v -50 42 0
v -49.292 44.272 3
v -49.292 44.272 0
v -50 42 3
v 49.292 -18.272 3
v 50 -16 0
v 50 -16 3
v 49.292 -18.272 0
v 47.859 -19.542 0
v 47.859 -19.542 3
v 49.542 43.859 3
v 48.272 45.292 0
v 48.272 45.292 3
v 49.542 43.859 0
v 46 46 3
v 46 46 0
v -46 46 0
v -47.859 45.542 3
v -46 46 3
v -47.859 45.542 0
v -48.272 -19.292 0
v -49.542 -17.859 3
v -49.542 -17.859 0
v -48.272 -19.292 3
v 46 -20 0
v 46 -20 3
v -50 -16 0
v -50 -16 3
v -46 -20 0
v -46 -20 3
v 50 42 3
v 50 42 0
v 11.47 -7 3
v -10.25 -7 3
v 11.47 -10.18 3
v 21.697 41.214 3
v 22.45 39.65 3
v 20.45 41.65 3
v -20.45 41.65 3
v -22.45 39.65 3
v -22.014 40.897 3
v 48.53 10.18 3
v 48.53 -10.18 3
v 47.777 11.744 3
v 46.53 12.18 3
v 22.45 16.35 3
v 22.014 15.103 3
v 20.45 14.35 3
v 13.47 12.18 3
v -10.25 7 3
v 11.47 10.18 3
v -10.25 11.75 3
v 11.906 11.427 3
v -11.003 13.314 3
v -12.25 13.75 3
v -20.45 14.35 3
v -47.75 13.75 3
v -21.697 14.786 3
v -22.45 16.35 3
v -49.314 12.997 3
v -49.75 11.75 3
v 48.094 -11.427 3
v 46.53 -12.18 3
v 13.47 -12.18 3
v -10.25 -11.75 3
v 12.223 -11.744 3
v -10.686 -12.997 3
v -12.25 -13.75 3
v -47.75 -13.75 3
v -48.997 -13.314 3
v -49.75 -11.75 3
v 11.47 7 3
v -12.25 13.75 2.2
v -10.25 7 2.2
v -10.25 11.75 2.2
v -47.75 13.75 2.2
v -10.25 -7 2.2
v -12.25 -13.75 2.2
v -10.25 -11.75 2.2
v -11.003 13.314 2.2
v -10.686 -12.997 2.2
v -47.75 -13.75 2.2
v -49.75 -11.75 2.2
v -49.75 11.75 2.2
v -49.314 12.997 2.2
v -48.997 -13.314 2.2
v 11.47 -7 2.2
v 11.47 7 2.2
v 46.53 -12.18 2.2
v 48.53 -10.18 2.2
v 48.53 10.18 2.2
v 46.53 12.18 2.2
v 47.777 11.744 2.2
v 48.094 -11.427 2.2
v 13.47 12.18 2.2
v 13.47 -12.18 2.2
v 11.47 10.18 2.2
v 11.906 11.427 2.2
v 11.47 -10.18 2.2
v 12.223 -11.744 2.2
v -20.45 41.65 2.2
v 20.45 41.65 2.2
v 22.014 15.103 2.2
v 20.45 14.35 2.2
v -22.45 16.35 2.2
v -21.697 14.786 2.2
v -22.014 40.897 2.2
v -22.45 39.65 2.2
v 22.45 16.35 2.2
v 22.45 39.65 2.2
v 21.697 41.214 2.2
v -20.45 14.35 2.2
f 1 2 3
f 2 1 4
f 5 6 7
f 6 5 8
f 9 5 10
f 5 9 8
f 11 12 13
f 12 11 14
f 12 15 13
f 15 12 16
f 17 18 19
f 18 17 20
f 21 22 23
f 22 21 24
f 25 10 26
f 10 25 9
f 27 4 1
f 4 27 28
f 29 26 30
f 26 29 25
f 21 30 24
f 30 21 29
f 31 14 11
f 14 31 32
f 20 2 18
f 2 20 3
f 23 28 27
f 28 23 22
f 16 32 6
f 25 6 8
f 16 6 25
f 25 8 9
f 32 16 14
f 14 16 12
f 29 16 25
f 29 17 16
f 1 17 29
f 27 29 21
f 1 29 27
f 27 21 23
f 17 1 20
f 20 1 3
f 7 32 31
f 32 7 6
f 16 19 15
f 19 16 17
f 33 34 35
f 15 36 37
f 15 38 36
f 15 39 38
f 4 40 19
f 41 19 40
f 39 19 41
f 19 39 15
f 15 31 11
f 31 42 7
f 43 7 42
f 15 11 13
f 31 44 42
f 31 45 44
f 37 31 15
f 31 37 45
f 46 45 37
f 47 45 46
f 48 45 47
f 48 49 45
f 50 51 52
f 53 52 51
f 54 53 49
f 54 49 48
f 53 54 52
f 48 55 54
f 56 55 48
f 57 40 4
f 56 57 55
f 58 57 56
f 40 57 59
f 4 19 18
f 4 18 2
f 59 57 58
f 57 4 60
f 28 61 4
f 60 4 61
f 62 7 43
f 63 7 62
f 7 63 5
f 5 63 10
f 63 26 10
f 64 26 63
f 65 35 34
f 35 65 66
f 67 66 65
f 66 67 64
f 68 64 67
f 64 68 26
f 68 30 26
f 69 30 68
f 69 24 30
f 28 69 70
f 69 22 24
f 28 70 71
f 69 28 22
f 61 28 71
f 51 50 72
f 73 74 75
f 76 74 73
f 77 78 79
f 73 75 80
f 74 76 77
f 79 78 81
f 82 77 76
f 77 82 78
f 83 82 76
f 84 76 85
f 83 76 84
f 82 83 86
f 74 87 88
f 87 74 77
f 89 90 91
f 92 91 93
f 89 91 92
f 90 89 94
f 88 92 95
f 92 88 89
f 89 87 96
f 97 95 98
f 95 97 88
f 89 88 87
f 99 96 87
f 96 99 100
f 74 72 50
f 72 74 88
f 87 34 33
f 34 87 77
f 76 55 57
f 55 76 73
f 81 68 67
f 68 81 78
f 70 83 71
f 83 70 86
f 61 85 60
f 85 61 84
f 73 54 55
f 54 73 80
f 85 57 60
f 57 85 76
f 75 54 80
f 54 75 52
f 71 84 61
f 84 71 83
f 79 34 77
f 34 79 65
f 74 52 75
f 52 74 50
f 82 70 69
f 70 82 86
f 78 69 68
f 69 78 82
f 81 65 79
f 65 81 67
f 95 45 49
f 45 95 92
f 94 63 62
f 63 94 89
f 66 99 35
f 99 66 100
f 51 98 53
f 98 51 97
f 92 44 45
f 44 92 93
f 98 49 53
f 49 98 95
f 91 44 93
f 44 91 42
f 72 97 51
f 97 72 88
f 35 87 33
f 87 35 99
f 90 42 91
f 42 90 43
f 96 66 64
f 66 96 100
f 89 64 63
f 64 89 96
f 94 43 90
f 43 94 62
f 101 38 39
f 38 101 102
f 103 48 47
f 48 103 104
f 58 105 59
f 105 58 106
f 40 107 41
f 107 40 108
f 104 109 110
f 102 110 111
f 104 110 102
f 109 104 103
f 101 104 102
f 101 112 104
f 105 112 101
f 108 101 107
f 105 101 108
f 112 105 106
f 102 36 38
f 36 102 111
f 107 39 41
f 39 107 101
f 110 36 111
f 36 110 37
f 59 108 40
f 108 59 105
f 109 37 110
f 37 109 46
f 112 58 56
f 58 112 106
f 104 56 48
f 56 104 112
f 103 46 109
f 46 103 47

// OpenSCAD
// F450 Sentinel — RTK Box tray FIT-CHECK COUPON
// Same pocket geometry as rtk_tray_v1.scad (single source of truth via use),
// cut to a flat plate covering all three board pockets + center cable slot.
// Purpose: operator physically drops UM980 / LicheeRV Nano / LR900 into the
// pockets to verify fit BEFORE committing to the full tray print.
// No legs, no flip: pockets are cut from the TOP (z = tray_t - 0.8), so the
// plate prints flat, pockets facing up, exactly like the tray's disk face.

// Constants mirrored from rtk_tray_v1.scad (OpenSCAD `use` does NOT export
// variables — keep these in sync with the tray file).
tray_t = 3.0;
pocket_d = 0.6;
um980_w = 26 + 1.5;   um980_l = 38 + 1.5;
nano_w  = 22.86 + 1.5; nano_l = 35.56 + 1.5;
lr900_w = 25.8 + 1.5;  lr900_l = 43.4 + 1.5;
um_x = -30;  nano_x = 30;  lr_x = 0;

module rounded_sq(w, l, r = 2) {
    offset(r = r) square([w - 2*r, l - 2*r], center = true);
}

plate_x = 100;   // covers x -50..50 (UM980 -49.75..-10.25, Nano 17.8..42.2)
plate_y = 66;    // covers y -20..46  (Nano -18.5..18.5, LR900 14.35..41.65)
plate_yc = 13;   // plate center offset so the rectangle spans y -20..46

module coupon() {
    cut_z = tray_t - (pocket_d + 0.2);   // 3.0 - 0.8 = 2.2: cut from top, 0.8 deep
    difference() {
        // plate
        translate([0, plate_yc, 0])
            linear_extrude(tray_t)
                rounded_sq(plate_x, plate_y, 4);
        // center cable bundle slot
        translate([0, 0, cut_z])
            linear_extrude(pocket_d + 0.3)
                rounded_sq(34, 14, 3);
        // UM980 pocket (left)
        translate([um_x, 0, cut_z])
            linear_extrude(pocket_d + 0.3)
                rounded_sq(um980_l, um980_w, 2);
        // Nano pocket (right, long axis along Y)
        translate([nano_x, 0, cut_z])
            linear_extrude(pocket_d + 0.3)
                rounded_sq(nano_l, nano_w, 2);
        // LR900 pocket (center-top, long axis along X)
        translate([lr_x, 28, cut_z])
            linear_extrude(pocket_d + 0.3)
                rounded_sq(lr900_l, lr900_w, 2);
    }
}

coupon();
